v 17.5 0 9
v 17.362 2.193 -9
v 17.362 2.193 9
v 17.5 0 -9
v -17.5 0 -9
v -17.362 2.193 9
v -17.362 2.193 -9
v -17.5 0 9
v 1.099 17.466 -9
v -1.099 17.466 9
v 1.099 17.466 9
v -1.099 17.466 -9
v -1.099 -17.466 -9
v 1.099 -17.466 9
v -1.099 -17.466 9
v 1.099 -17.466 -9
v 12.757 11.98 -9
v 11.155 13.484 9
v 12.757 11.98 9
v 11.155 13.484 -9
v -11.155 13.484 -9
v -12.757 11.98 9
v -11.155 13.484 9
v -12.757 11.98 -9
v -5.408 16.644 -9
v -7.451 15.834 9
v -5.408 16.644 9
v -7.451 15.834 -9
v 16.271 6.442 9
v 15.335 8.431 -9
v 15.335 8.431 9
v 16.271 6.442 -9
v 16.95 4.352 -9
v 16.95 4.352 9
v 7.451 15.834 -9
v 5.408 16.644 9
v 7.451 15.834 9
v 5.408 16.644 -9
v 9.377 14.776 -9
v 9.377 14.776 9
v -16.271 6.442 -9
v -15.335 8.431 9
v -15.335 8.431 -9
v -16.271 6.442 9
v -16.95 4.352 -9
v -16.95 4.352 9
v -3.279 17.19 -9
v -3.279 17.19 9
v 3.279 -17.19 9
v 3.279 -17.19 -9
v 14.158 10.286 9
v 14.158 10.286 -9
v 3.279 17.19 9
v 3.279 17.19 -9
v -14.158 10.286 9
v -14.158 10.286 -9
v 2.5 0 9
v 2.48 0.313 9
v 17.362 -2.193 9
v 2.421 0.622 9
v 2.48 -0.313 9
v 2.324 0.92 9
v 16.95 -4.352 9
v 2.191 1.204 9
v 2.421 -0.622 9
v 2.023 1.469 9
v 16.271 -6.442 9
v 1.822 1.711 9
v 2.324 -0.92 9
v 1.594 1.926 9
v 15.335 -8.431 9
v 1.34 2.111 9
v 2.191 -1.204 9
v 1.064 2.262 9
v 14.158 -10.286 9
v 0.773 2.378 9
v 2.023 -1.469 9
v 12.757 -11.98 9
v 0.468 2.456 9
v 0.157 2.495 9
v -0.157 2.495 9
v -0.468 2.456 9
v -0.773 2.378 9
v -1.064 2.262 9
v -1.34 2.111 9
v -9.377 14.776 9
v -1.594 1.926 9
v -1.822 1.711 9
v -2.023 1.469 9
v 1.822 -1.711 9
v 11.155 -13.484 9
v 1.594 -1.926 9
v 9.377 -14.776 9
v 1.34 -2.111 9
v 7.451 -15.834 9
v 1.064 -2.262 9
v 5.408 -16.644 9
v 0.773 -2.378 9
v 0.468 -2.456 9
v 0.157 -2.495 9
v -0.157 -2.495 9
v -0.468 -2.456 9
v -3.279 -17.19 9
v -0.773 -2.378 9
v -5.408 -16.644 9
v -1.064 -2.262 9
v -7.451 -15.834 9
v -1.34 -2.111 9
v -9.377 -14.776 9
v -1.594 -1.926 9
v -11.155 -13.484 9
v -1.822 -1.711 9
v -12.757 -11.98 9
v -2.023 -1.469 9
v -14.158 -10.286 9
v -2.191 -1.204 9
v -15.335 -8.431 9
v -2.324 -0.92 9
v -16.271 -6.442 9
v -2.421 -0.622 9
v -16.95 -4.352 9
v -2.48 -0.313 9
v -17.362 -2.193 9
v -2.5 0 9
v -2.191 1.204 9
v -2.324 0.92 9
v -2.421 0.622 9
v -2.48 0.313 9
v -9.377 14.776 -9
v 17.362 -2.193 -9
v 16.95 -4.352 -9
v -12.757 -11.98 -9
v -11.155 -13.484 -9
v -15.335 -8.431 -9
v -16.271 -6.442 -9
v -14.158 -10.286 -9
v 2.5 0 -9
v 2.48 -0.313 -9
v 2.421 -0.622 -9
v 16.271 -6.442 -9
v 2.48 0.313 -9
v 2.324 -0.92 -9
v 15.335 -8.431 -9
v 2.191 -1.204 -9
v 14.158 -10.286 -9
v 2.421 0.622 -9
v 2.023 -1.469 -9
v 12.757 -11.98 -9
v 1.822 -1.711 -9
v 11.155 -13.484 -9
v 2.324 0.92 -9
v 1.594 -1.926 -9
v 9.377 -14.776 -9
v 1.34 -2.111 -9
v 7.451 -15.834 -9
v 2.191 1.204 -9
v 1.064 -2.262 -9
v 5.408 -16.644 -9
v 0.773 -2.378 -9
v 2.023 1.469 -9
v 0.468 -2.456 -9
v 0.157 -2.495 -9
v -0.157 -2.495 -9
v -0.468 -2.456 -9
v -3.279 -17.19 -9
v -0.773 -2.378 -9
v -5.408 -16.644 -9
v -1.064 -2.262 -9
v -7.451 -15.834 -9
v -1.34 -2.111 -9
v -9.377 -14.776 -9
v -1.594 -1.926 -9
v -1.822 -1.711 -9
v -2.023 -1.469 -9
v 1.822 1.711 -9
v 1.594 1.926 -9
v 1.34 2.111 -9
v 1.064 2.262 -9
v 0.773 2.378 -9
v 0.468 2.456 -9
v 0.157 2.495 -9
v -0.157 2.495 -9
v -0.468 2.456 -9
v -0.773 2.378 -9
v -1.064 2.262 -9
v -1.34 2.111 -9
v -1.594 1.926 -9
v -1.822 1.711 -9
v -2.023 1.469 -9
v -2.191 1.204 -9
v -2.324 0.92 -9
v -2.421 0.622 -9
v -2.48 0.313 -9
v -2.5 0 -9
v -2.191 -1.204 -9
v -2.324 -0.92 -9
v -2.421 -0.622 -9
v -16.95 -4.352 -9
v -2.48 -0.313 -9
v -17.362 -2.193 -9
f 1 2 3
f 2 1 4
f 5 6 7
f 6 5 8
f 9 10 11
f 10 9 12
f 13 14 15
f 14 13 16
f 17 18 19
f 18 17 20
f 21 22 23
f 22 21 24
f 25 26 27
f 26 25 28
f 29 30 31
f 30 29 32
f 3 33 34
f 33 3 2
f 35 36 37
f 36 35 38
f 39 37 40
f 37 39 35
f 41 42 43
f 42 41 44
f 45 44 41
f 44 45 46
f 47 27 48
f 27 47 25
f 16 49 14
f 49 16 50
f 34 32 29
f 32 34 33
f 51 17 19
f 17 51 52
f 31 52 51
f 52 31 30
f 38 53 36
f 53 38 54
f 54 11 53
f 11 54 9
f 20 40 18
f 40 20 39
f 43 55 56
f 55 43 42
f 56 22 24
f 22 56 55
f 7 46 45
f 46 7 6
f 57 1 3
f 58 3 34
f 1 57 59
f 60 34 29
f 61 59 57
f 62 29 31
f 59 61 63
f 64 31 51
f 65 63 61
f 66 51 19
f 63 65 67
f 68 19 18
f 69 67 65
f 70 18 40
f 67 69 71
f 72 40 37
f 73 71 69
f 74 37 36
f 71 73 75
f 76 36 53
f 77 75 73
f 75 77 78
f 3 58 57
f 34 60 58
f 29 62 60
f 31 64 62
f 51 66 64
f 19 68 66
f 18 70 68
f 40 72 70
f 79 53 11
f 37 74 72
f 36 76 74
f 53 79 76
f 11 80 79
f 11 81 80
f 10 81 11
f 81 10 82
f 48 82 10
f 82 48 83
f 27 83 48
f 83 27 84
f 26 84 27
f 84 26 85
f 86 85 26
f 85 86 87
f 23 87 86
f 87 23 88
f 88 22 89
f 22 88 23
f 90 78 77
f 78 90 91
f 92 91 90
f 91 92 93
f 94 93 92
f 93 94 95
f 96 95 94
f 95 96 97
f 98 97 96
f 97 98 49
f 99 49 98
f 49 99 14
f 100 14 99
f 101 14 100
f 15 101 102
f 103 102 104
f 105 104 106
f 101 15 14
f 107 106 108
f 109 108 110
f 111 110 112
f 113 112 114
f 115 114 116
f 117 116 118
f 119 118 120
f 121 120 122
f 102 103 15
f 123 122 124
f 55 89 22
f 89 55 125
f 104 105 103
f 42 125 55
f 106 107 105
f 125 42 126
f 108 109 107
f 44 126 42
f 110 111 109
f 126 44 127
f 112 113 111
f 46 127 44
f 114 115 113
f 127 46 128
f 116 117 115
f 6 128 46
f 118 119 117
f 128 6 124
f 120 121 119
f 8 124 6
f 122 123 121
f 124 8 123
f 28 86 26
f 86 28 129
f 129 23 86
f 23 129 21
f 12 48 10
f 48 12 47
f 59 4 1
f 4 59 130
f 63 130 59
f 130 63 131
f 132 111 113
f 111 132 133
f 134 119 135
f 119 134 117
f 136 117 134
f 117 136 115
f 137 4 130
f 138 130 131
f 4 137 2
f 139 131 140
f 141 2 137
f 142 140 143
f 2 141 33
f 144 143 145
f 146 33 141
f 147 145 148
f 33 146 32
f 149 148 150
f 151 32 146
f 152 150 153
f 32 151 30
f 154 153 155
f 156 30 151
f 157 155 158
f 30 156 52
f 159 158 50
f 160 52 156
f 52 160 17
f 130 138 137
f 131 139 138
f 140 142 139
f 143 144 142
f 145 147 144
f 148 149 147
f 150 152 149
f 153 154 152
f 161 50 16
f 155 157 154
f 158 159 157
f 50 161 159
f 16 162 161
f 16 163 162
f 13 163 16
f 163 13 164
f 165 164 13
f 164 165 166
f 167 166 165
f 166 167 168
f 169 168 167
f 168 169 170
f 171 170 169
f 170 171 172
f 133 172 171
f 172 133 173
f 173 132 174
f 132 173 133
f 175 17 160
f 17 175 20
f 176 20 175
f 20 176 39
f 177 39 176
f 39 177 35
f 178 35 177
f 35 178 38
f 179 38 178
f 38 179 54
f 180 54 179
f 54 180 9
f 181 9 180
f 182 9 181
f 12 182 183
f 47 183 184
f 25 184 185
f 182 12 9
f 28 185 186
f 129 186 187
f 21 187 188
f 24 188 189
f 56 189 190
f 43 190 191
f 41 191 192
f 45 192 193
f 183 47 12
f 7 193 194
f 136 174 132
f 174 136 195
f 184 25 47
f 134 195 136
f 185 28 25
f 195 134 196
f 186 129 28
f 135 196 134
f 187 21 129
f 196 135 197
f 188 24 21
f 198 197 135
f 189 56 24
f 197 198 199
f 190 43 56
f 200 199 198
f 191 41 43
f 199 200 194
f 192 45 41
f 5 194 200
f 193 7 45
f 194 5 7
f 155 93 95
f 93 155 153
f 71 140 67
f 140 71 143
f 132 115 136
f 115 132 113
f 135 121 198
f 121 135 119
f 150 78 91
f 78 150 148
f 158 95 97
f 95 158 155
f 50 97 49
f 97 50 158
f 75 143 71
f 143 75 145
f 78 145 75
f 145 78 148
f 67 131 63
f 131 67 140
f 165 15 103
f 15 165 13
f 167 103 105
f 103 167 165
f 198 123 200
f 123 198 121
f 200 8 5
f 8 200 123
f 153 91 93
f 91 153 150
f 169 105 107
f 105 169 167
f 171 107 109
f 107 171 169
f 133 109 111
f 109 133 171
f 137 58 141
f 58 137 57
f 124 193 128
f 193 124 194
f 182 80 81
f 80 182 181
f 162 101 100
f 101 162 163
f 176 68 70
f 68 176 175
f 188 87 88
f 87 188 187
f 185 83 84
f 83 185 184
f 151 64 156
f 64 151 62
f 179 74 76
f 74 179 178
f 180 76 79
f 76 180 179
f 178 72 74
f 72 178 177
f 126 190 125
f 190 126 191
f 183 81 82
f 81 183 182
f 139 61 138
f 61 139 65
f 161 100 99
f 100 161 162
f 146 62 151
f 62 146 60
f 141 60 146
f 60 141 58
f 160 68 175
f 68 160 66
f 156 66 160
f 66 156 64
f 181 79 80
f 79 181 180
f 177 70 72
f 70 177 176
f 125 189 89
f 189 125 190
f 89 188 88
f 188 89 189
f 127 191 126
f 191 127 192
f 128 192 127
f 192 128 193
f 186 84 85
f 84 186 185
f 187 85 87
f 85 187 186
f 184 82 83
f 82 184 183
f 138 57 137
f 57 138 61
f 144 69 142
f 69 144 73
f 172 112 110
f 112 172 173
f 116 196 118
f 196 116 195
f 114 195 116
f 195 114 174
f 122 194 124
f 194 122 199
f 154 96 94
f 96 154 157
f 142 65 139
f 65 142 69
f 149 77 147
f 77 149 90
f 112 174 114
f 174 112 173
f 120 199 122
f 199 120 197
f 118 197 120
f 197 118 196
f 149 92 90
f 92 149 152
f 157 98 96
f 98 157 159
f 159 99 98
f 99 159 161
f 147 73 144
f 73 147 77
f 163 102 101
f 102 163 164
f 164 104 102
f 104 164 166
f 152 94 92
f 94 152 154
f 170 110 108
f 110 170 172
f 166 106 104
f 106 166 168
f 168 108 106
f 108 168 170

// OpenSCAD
$fn = 50;


difference() {
	union() {
		translate(v = [0, 0, -9.0000000000]) {
			cylinder(h = 18, r = 17.5000000000);
		}
	}
	union() {
		translate(v = [0, 0, -100.0000000000]) {
			cylinder(h = 200, r = 2.5000000000);
		}
	}
}
